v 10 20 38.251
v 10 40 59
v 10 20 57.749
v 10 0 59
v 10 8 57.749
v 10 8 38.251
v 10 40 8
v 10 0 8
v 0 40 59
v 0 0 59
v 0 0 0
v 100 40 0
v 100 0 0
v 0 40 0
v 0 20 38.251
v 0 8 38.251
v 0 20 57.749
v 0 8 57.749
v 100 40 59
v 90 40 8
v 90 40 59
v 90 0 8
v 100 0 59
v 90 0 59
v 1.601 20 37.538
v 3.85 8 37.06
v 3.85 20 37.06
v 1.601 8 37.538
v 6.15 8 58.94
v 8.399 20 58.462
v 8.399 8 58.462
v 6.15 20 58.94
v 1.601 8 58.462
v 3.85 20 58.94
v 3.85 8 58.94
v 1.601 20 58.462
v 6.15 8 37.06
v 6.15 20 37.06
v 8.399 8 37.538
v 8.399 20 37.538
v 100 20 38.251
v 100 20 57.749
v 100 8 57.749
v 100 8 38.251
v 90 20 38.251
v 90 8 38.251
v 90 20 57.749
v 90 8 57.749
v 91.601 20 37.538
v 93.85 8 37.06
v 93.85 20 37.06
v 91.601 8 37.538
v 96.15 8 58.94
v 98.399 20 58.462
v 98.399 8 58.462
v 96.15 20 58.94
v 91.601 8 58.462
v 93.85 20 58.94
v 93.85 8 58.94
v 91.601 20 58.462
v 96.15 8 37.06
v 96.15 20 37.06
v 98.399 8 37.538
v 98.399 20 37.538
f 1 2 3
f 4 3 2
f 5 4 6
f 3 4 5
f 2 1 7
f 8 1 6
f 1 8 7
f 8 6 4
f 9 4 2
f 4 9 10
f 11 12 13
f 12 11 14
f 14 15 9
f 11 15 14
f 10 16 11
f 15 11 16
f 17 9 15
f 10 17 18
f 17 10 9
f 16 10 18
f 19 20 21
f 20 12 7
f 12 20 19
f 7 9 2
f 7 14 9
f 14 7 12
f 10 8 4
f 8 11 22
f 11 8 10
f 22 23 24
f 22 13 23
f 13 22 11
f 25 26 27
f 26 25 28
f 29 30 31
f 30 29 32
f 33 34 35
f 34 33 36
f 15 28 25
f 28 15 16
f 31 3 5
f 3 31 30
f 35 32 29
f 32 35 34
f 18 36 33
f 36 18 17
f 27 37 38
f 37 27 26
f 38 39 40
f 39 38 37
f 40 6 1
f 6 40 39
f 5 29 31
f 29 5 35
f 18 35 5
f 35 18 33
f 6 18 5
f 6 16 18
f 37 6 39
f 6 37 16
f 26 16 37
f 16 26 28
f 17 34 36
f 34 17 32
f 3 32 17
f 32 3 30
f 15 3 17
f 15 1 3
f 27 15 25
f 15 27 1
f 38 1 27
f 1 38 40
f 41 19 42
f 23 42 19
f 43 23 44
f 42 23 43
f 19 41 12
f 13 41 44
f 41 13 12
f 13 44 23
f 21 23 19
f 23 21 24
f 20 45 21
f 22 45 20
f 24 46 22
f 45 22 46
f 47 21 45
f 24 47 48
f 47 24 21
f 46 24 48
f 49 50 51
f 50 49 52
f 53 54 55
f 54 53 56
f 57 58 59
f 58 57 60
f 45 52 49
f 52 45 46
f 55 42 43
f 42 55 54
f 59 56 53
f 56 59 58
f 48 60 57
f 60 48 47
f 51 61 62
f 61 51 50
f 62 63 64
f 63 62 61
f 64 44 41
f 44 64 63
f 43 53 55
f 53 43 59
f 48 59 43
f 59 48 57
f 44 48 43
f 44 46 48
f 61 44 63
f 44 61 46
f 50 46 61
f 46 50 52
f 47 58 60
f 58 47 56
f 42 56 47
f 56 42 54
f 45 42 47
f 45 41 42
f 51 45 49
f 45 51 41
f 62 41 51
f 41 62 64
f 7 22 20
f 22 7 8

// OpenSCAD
// Stand for a flywheel shaft using skateboard bearings
// Parameters can be tweaked for different sizes

bearing_outer_d = 22; // mm (608 bearing)
bearing_thickness = 7; // mm
base_length = 100; // mm
base_width = 40;  // mm
base_thickness = 8; // mm
post_thickness = 10; // mm
post_height = 40; // mm (distance from base to bearing center)

module bearing_post(thk, width, height, base_thk, bore_d) {
    difference() {
        cube([thk, width, height + bore_d/2 + base_thk], center=false);
        translate([thk/2, width/2, height + base_thk])
            rotate([90,0,0])
                cylinder(r=bore_d/2, h=thk+2, $fs=0.5);
    }
}

module stand(base_len, base_w, base_thk, post_thk, post_h, bore_d) {
    // base platform
    cube([base_len, base_w, base_thk], center=false);
    // left post
    translate([0,0,0])
        bearing_post(post_thk, base_w, post_h, base_thk, bore_d);
    // right post
    translate([base_len - post_thk, 0, 0])
        bearing_post(post_thk, base_w, post_h, base_thk, bore_d);
}

stand(base_length, base_width, base_thickness, post_thickness, post_height, bearing_outer_d);
